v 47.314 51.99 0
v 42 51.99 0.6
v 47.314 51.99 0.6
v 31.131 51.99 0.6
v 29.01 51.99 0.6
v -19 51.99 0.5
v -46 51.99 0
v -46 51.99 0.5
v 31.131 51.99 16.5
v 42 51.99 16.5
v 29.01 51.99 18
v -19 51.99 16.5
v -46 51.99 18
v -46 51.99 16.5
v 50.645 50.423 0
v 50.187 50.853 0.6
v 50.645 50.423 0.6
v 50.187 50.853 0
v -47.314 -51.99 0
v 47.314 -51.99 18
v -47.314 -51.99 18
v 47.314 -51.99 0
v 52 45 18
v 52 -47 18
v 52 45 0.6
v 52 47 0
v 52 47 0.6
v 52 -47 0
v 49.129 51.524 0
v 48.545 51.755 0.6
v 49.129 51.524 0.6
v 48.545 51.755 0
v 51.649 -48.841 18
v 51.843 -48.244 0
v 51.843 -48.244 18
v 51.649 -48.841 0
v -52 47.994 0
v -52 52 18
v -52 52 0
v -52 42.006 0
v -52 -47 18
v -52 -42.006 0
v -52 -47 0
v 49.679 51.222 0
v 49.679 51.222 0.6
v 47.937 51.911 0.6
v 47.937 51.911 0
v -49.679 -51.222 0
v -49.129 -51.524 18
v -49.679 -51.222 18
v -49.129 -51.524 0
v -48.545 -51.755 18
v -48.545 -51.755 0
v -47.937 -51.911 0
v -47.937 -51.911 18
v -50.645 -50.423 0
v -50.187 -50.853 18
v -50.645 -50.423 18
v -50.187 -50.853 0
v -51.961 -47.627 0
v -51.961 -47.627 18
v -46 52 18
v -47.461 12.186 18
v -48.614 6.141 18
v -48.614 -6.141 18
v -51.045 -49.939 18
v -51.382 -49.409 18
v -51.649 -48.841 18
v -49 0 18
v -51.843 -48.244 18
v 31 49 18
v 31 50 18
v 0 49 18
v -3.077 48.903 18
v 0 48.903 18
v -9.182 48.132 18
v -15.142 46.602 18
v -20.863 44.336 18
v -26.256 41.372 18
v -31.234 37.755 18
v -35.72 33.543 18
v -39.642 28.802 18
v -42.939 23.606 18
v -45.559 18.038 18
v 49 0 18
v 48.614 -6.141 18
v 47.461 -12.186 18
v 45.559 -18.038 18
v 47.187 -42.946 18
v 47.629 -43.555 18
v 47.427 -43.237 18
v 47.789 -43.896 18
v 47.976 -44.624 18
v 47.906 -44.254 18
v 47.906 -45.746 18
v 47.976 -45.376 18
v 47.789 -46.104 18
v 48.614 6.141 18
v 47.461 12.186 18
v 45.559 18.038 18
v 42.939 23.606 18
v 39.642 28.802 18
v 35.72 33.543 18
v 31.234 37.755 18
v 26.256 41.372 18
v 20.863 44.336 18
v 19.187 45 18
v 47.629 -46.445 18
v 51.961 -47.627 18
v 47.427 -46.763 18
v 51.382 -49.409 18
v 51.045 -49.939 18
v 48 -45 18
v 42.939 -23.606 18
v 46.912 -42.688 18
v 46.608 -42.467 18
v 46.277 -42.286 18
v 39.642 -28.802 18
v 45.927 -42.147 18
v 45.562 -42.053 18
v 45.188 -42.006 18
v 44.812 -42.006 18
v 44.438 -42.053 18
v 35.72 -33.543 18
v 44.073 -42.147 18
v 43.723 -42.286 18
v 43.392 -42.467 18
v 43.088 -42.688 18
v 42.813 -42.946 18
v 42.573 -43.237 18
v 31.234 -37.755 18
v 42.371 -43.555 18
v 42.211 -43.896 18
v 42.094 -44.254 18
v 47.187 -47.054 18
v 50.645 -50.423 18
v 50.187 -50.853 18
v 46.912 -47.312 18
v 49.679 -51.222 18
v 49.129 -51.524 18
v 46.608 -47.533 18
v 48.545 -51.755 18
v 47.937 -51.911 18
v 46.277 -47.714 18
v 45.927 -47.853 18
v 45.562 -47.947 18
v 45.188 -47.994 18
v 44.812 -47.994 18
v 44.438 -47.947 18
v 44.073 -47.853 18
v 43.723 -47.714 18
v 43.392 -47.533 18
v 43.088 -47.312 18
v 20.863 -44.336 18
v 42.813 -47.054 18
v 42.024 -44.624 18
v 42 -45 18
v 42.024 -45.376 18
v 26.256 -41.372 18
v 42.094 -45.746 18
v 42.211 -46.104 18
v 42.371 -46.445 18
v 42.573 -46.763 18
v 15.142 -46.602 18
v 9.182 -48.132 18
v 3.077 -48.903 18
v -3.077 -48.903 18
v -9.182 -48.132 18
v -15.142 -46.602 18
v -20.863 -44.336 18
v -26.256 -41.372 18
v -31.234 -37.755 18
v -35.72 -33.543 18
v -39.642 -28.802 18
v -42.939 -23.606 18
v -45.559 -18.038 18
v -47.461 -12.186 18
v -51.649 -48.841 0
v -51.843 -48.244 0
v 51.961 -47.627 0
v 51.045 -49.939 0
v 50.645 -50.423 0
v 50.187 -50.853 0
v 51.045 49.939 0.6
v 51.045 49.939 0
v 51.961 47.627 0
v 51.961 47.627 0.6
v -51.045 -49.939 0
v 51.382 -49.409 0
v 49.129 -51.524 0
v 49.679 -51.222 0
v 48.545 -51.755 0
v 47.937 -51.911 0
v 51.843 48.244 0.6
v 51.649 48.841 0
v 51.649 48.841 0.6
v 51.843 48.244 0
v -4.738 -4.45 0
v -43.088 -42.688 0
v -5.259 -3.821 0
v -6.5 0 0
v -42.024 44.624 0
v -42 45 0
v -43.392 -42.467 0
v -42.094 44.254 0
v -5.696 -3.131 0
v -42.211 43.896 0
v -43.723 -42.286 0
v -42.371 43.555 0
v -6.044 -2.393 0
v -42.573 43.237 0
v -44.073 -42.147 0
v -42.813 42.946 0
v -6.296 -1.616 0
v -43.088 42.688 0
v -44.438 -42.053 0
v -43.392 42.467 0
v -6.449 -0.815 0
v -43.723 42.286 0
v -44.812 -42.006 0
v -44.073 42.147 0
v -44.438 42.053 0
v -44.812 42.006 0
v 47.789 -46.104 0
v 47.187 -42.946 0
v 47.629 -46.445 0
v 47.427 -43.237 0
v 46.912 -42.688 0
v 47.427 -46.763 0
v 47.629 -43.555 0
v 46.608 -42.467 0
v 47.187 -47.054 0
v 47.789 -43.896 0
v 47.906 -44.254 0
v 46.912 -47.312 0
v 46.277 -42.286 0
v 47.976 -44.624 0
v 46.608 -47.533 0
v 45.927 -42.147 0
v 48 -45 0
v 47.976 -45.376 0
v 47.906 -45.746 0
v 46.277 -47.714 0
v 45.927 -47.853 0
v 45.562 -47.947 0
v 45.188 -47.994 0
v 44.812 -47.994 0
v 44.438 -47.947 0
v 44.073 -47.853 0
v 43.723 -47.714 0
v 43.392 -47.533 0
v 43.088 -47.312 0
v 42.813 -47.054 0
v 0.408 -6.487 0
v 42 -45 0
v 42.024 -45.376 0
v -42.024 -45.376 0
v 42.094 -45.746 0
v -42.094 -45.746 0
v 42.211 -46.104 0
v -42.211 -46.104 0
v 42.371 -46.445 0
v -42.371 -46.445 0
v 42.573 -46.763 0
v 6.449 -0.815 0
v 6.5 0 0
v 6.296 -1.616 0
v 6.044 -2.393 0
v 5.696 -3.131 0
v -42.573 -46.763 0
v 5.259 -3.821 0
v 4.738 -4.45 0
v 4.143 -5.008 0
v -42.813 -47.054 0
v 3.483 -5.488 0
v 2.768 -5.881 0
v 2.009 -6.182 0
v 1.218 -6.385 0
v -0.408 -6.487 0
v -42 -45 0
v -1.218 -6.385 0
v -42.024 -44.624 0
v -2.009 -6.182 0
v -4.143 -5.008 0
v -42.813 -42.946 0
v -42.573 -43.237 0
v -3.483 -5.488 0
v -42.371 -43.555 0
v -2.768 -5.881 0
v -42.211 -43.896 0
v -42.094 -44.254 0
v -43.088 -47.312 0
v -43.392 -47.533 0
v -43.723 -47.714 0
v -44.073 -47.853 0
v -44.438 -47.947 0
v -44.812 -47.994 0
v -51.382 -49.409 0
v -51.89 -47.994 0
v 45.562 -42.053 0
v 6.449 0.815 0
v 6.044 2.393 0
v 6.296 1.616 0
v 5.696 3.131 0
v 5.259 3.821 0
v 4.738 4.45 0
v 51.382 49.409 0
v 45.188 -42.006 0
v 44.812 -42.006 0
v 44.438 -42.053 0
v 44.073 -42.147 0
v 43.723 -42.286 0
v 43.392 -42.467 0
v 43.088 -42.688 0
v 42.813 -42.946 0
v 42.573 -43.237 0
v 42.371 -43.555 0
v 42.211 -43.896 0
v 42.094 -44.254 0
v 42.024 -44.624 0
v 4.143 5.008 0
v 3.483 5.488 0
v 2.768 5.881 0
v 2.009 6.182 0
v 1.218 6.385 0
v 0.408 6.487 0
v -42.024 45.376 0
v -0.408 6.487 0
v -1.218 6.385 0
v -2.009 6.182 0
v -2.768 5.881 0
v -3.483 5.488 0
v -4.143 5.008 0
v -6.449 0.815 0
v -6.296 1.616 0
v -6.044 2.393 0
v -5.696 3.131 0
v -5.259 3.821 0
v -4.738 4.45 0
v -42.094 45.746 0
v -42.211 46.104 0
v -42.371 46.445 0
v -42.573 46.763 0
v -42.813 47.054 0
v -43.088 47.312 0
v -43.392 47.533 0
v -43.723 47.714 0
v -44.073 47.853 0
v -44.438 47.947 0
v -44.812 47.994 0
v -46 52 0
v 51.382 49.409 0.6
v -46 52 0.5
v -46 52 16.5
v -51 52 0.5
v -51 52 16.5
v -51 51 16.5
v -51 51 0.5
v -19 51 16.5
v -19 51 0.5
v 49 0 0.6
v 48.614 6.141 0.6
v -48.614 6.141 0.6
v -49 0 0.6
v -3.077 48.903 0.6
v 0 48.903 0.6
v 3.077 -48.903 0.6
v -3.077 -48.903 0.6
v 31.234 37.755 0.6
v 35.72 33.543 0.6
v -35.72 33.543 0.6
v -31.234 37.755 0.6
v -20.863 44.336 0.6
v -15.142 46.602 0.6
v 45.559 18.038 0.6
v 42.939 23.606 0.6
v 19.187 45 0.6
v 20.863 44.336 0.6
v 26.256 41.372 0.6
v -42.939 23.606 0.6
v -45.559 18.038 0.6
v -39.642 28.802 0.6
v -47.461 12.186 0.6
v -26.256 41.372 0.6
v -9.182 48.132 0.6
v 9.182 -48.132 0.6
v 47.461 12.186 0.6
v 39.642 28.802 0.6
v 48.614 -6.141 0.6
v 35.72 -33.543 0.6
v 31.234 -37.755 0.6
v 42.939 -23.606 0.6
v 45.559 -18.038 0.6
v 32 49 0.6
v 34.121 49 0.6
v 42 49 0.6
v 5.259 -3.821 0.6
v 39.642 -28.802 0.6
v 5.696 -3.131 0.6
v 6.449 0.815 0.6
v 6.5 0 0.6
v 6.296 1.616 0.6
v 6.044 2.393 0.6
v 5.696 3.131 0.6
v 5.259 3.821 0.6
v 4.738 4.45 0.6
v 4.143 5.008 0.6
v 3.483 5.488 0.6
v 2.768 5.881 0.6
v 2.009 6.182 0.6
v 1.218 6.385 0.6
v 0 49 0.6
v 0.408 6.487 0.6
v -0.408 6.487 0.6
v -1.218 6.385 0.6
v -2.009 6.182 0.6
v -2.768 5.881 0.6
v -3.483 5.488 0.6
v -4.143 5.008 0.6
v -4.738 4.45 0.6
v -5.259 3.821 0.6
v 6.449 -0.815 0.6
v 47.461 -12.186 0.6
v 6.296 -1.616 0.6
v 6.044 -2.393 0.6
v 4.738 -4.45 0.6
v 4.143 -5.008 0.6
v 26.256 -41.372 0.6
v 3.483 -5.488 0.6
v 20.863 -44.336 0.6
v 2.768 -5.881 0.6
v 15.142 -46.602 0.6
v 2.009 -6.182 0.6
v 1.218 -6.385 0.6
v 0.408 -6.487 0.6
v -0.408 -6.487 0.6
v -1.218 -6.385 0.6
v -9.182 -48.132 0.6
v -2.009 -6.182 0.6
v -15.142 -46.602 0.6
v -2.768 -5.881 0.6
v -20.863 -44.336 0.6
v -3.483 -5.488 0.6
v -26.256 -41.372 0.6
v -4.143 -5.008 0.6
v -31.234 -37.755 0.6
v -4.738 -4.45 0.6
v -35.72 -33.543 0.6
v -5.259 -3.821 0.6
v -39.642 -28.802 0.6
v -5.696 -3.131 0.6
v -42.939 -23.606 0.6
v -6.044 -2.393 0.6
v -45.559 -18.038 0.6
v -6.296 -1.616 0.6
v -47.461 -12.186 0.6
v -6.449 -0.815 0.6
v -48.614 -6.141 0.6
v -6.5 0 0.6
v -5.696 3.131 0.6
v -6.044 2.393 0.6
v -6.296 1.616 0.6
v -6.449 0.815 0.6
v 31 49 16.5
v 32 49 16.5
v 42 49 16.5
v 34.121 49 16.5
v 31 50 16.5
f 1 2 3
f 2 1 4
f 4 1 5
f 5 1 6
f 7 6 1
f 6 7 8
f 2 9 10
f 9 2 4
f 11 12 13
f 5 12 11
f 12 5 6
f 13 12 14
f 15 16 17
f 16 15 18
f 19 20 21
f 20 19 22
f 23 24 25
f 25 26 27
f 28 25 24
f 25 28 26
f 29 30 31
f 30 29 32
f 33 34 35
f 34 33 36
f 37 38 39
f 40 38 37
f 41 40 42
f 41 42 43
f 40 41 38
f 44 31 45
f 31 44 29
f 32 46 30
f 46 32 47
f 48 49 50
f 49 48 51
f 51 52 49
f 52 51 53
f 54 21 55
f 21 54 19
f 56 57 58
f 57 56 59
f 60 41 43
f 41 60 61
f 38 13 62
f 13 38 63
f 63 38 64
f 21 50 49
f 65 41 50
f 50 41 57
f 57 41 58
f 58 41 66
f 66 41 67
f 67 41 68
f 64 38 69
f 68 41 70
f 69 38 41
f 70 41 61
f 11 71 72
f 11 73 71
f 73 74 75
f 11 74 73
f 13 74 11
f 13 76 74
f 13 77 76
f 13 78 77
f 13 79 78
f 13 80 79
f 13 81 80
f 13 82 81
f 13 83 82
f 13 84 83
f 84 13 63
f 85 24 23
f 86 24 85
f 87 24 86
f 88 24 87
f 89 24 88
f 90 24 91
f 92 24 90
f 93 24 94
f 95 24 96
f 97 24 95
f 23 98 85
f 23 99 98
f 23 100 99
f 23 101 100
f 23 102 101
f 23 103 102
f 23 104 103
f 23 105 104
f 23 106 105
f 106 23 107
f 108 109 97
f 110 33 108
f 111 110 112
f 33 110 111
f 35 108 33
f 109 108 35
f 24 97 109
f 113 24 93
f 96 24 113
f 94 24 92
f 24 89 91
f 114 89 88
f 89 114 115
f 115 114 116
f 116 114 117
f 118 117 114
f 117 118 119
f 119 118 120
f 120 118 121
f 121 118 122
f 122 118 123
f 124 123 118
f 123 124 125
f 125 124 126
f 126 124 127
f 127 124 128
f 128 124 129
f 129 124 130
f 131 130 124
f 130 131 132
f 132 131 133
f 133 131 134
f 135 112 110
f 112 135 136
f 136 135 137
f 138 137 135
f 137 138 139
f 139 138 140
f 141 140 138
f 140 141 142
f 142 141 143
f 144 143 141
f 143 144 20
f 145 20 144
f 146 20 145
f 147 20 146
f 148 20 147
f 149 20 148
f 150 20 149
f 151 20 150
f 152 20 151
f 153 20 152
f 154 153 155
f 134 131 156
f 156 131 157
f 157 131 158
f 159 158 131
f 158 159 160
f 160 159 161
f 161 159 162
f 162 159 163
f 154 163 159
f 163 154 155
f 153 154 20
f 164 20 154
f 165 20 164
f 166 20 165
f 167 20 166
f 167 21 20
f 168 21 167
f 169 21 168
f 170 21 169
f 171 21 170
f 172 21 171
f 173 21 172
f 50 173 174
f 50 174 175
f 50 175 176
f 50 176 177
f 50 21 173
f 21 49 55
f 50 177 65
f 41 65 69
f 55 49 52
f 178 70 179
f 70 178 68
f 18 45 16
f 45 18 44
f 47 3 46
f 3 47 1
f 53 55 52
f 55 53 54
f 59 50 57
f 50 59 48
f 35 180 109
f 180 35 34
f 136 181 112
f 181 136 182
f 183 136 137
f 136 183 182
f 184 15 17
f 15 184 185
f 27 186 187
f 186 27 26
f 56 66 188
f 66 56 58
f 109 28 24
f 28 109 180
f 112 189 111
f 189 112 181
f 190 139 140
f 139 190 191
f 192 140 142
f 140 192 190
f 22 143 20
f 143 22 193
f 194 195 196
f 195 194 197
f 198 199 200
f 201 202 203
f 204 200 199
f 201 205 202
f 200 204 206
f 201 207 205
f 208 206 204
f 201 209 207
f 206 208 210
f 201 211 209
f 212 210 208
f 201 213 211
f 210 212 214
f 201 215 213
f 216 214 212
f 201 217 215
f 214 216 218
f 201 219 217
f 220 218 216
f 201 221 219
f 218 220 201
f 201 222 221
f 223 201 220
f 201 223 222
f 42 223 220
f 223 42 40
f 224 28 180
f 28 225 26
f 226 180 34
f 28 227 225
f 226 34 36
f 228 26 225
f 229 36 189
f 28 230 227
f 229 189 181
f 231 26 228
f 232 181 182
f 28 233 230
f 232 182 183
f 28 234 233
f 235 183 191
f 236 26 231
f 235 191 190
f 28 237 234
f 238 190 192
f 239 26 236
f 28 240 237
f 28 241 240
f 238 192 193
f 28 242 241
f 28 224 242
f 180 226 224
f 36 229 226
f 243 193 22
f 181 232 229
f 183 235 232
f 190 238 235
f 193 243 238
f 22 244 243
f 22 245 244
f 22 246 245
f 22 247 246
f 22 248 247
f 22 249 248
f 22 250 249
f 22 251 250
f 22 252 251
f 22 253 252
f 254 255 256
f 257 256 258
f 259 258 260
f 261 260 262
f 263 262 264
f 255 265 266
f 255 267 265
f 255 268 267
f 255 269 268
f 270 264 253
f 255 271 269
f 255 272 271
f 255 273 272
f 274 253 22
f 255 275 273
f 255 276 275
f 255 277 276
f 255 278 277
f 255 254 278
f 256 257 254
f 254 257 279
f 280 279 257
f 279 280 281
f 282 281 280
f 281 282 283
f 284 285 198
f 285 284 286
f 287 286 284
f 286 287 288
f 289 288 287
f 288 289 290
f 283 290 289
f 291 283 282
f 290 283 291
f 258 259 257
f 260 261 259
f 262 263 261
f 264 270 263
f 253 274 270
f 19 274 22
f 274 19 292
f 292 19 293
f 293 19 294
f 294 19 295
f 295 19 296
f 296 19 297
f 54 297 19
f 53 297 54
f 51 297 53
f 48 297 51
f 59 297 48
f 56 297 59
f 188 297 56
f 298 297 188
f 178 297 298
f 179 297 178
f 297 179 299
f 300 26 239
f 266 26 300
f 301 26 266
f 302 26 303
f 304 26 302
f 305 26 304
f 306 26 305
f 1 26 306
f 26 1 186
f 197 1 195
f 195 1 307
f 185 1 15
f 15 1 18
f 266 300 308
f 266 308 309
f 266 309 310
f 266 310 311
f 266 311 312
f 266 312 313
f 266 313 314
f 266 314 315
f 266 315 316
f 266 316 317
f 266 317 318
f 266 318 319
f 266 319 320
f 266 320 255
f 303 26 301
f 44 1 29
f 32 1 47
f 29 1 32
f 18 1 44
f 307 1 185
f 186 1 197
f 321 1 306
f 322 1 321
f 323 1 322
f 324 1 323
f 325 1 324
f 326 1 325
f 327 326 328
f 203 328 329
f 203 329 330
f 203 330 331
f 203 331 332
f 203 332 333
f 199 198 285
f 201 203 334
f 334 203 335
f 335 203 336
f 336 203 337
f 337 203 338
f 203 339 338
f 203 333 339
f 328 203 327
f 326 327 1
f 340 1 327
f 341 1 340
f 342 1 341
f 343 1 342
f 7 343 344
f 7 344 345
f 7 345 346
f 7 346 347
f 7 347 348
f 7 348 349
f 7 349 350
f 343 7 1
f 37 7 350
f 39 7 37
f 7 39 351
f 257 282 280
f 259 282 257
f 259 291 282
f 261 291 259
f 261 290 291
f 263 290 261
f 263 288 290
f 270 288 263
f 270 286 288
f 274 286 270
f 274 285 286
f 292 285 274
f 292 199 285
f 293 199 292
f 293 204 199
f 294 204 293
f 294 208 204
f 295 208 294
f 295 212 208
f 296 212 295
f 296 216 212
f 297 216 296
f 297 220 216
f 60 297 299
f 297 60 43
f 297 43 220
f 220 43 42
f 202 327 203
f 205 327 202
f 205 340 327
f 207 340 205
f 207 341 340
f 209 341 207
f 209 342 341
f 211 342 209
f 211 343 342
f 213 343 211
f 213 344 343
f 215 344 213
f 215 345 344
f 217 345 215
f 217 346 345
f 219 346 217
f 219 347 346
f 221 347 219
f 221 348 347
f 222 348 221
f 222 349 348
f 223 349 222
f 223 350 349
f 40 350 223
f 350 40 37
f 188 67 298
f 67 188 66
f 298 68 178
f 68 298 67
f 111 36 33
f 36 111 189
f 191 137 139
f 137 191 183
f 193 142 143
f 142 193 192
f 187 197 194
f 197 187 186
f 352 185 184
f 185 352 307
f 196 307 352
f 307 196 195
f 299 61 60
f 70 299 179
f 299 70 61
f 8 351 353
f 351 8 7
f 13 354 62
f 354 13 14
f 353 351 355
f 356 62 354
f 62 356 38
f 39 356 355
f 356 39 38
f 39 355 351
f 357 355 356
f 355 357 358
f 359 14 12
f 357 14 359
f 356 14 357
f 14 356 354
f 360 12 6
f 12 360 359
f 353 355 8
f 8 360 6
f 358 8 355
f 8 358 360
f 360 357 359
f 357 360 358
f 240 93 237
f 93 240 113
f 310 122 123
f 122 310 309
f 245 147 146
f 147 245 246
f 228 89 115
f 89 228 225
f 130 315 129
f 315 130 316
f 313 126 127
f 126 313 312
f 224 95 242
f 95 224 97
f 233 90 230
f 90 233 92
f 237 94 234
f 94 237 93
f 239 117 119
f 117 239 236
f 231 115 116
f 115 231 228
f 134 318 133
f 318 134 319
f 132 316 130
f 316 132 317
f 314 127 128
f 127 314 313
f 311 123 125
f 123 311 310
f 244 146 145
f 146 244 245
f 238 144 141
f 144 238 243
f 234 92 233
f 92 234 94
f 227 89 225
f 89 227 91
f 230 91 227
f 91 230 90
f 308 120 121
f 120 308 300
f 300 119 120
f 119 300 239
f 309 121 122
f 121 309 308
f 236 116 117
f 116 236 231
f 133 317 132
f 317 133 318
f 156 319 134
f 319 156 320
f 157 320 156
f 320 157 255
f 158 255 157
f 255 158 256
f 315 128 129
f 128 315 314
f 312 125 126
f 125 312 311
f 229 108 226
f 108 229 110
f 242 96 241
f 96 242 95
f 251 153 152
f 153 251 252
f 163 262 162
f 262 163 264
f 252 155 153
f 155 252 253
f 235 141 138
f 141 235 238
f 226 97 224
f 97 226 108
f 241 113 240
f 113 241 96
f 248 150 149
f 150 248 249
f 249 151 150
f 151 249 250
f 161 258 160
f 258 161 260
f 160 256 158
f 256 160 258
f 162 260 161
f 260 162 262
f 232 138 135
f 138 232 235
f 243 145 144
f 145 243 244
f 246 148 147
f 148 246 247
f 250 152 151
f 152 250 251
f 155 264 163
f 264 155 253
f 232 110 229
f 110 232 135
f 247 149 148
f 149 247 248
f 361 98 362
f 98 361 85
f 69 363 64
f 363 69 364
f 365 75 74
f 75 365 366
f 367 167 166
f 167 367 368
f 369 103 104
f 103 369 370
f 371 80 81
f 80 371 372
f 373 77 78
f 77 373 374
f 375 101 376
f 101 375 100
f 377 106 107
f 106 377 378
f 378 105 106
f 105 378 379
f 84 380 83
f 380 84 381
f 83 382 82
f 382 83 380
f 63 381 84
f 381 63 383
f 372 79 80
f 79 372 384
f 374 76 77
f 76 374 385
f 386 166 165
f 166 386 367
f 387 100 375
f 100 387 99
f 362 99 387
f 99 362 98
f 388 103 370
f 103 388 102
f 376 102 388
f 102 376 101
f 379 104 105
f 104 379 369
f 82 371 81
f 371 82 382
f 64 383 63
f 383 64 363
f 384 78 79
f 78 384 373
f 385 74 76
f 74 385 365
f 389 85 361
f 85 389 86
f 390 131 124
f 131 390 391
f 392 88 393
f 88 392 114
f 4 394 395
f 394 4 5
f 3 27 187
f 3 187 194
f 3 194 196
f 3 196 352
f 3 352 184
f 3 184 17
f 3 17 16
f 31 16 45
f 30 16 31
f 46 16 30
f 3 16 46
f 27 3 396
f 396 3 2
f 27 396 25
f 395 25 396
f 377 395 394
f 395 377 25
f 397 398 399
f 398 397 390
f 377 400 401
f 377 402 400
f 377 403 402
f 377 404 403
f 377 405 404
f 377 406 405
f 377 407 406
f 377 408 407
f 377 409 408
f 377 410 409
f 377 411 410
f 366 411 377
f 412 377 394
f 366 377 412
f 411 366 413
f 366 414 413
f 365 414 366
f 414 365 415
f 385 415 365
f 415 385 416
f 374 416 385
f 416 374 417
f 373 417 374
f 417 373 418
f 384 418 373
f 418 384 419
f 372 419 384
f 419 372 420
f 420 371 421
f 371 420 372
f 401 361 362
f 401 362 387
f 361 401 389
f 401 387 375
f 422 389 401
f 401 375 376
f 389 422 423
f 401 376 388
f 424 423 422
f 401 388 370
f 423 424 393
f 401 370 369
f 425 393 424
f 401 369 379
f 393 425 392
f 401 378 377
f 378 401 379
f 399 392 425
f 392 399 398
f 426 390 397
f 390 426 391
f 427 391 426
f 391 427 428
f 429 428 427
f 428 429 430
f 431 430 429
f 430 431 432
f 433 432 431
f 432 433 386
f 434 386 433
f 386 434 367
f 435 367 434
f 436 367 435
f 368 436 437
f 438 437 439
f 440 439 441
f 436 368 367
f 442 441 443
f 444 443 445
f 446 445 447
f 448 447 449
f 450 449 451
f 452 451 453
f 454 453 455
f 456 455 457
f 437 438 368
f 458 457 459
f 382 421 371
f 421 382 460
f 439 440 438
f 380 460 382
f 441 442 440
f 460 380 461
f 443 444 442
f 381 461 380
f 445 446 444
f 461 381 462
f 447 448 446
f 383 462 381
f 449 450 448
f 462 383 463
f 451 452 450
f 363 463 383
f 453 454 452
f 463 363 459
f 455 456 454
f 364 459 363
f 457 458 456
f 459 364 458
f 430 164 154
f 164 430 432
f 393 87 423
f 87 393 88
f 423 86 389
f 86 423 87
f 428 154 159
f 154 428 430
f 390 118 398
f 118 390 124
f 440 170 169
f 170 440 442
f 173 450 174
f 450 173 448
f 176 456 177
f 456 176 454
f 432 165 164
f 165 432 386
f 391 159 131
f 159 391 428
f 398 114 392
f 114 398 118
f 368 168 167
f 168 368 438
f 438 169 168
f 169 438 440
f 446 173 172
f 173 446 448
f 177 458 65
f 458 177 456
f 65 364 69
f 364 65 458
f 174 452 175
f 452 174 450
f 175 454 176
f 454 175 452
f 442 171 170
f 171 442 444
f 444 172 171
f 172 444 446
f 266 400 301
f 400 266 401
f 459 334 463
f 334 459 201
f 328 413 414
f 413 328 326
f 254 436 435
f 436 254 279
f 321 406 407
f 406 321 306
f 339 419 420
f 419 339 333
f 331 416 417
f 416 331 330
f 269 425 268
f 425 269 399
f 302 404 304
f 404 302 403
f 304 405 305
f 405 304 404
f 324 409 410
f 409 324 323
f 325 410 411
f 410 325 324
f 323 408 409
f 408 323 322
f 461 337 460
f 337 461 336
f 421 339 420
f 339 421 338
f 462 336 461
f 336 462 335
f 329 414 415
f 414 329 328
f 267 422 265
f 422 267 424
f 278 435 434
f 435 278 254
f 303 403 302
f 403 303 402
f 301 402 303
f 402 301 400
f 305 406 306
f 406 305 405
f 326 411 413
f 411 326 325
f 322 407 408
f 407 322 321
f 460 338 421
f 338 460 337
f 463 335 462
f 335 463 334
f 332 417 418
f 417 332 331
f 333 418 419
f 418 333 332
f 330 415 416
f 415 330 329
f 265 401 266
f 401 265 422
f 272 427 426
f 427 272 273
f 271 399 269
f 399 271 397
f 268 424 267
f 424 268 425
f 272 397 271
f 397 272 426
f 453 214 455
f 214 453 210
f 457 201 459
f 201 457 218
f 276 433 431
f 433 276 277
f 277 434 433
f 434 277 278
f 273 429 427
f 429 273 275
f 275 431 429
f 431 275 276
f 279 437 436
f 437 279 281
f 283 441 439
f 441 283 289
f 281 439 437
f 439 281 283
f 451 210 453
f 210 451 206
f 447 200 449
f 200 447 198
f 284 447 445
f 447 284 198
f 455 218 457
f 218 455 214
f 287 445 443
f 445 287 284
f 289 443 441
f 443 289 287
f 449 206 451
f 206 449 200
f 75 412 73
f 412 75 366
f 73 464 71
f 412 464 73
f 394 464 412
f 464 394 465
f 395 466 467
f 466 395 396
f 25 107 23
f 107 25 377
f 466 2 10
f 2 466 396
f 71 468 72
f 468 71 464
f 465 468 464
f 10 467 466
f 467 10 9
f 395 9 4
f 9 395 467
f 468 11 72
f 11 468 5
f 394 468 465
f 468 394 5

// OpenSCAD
$fn = 50;


difference() {
	union() {
		hull() {
			translate(v = [-47.0000000000, 47.0000000000, 0]) {
				cylinder(h = 18, r = 5);
			}
			translate(v = [47.0000000000, 47.0000000000, 0]) {
				cylinder(h = 18, r = 5);
			}
			translate(v = [-47.0000000000, -47.0000000000, 0]) {
				cylinder(h = 18, r = 5);
			}
			translate(v = [47.0000000000, -47.0000000000, 0]) {
				cylinder(h = 18, r = 5);
			}
		}
		translate(v = [-52.0000000000, 46.0000000000, 0]) {
			cube(size = [6, 6, 18]);
		}
	}
	union() {
		translate(v = [-52.5000000000, -45.0000000000, -250.0000000000]) {
			rotate(a = [0, 0, 0]) {
				difference() {
					union() {
						hull() {
							translate(v = [7.5000000000, 0, 0]) {
								cylinder(h = 250, r = 3.0000000000, r1 = 3.0000000000, r2 = 3.0000000000);
							}
							translate(v = [-7.5000000000, 0, 0]) {
								cylinder(h = 250, r = 3.0000000000, r1 = 3.0000000000, r2 = 3.0000000000);
							}
						}
					}
					union();
				}
			}
		}
		translate(v = [-52.5000000000, 45.0000000000, -250.0000000000]) {
			rotate(a = [0, 0, 0]) {
				difference() {
					union() {
						hull() {
							translate(v = [7.5000000000, 0, 0]) {
								cylinder(h = 250, r = 3.0000000000, r1 = 3.0000000000, r2 = 3.0000000000);
							}
							translate(v = [-7.5000000000, 0, 0]) {
								cylinder(h = 250, r = 3.0000000000, r1 = 3.0000000000, r2 = 3.0000000000);
							}
						}
					}
					union();
				}
			}
		}
		translate(v = [-51.0000000000, 51.0000000000, 0.5000000000]) {
			cube(size = [32, 1, 16]);
		}
		translate(v = [45.0000000000, -45.0000000000, -50.0000000000]) {
			cylinder(h = 100, r = 3.0000000000);
		}
		translate(v = [0, 0, 0.6000000000]) {
			cylinder(h = 20.4000000000, r = 49.0000000000);
		}
		translate(v = [0, 0, -9.0000000000]) {
			cylinder(h = 18, r = 6.5000000000);
		}
		translate(v = [0.0000000000, 45.0000000000, 0.6000000000]) {
			cube(size = [52.0000000000, 4, 20.4000000000]);
		}
		translate(v = [42.0000000000, 45.0000000000, 0.6000000000]) {
			cube(size = [10, 7, 20.4000000000]);
		}
		translate(v = [31.0000000000, 45.0000000000, 16.5000000000]) {
			cube(size = [21, 7, 1.5000000000]);
		}
		translate(v = [28.2500000000, 52.7500000000, 0.6000000000]) {
			rotate(a = [0, 0, -45]) {
				cube(size = [7.5000000000, 1.5000000000, 20.4000000000]);
			}
		}
		translate(v = [11.0610000000, 43.0000000000, 0.6000000000]) {
			cube(size = [7.5000000000, 2, 17.4000000000]);
		}
	}
}
